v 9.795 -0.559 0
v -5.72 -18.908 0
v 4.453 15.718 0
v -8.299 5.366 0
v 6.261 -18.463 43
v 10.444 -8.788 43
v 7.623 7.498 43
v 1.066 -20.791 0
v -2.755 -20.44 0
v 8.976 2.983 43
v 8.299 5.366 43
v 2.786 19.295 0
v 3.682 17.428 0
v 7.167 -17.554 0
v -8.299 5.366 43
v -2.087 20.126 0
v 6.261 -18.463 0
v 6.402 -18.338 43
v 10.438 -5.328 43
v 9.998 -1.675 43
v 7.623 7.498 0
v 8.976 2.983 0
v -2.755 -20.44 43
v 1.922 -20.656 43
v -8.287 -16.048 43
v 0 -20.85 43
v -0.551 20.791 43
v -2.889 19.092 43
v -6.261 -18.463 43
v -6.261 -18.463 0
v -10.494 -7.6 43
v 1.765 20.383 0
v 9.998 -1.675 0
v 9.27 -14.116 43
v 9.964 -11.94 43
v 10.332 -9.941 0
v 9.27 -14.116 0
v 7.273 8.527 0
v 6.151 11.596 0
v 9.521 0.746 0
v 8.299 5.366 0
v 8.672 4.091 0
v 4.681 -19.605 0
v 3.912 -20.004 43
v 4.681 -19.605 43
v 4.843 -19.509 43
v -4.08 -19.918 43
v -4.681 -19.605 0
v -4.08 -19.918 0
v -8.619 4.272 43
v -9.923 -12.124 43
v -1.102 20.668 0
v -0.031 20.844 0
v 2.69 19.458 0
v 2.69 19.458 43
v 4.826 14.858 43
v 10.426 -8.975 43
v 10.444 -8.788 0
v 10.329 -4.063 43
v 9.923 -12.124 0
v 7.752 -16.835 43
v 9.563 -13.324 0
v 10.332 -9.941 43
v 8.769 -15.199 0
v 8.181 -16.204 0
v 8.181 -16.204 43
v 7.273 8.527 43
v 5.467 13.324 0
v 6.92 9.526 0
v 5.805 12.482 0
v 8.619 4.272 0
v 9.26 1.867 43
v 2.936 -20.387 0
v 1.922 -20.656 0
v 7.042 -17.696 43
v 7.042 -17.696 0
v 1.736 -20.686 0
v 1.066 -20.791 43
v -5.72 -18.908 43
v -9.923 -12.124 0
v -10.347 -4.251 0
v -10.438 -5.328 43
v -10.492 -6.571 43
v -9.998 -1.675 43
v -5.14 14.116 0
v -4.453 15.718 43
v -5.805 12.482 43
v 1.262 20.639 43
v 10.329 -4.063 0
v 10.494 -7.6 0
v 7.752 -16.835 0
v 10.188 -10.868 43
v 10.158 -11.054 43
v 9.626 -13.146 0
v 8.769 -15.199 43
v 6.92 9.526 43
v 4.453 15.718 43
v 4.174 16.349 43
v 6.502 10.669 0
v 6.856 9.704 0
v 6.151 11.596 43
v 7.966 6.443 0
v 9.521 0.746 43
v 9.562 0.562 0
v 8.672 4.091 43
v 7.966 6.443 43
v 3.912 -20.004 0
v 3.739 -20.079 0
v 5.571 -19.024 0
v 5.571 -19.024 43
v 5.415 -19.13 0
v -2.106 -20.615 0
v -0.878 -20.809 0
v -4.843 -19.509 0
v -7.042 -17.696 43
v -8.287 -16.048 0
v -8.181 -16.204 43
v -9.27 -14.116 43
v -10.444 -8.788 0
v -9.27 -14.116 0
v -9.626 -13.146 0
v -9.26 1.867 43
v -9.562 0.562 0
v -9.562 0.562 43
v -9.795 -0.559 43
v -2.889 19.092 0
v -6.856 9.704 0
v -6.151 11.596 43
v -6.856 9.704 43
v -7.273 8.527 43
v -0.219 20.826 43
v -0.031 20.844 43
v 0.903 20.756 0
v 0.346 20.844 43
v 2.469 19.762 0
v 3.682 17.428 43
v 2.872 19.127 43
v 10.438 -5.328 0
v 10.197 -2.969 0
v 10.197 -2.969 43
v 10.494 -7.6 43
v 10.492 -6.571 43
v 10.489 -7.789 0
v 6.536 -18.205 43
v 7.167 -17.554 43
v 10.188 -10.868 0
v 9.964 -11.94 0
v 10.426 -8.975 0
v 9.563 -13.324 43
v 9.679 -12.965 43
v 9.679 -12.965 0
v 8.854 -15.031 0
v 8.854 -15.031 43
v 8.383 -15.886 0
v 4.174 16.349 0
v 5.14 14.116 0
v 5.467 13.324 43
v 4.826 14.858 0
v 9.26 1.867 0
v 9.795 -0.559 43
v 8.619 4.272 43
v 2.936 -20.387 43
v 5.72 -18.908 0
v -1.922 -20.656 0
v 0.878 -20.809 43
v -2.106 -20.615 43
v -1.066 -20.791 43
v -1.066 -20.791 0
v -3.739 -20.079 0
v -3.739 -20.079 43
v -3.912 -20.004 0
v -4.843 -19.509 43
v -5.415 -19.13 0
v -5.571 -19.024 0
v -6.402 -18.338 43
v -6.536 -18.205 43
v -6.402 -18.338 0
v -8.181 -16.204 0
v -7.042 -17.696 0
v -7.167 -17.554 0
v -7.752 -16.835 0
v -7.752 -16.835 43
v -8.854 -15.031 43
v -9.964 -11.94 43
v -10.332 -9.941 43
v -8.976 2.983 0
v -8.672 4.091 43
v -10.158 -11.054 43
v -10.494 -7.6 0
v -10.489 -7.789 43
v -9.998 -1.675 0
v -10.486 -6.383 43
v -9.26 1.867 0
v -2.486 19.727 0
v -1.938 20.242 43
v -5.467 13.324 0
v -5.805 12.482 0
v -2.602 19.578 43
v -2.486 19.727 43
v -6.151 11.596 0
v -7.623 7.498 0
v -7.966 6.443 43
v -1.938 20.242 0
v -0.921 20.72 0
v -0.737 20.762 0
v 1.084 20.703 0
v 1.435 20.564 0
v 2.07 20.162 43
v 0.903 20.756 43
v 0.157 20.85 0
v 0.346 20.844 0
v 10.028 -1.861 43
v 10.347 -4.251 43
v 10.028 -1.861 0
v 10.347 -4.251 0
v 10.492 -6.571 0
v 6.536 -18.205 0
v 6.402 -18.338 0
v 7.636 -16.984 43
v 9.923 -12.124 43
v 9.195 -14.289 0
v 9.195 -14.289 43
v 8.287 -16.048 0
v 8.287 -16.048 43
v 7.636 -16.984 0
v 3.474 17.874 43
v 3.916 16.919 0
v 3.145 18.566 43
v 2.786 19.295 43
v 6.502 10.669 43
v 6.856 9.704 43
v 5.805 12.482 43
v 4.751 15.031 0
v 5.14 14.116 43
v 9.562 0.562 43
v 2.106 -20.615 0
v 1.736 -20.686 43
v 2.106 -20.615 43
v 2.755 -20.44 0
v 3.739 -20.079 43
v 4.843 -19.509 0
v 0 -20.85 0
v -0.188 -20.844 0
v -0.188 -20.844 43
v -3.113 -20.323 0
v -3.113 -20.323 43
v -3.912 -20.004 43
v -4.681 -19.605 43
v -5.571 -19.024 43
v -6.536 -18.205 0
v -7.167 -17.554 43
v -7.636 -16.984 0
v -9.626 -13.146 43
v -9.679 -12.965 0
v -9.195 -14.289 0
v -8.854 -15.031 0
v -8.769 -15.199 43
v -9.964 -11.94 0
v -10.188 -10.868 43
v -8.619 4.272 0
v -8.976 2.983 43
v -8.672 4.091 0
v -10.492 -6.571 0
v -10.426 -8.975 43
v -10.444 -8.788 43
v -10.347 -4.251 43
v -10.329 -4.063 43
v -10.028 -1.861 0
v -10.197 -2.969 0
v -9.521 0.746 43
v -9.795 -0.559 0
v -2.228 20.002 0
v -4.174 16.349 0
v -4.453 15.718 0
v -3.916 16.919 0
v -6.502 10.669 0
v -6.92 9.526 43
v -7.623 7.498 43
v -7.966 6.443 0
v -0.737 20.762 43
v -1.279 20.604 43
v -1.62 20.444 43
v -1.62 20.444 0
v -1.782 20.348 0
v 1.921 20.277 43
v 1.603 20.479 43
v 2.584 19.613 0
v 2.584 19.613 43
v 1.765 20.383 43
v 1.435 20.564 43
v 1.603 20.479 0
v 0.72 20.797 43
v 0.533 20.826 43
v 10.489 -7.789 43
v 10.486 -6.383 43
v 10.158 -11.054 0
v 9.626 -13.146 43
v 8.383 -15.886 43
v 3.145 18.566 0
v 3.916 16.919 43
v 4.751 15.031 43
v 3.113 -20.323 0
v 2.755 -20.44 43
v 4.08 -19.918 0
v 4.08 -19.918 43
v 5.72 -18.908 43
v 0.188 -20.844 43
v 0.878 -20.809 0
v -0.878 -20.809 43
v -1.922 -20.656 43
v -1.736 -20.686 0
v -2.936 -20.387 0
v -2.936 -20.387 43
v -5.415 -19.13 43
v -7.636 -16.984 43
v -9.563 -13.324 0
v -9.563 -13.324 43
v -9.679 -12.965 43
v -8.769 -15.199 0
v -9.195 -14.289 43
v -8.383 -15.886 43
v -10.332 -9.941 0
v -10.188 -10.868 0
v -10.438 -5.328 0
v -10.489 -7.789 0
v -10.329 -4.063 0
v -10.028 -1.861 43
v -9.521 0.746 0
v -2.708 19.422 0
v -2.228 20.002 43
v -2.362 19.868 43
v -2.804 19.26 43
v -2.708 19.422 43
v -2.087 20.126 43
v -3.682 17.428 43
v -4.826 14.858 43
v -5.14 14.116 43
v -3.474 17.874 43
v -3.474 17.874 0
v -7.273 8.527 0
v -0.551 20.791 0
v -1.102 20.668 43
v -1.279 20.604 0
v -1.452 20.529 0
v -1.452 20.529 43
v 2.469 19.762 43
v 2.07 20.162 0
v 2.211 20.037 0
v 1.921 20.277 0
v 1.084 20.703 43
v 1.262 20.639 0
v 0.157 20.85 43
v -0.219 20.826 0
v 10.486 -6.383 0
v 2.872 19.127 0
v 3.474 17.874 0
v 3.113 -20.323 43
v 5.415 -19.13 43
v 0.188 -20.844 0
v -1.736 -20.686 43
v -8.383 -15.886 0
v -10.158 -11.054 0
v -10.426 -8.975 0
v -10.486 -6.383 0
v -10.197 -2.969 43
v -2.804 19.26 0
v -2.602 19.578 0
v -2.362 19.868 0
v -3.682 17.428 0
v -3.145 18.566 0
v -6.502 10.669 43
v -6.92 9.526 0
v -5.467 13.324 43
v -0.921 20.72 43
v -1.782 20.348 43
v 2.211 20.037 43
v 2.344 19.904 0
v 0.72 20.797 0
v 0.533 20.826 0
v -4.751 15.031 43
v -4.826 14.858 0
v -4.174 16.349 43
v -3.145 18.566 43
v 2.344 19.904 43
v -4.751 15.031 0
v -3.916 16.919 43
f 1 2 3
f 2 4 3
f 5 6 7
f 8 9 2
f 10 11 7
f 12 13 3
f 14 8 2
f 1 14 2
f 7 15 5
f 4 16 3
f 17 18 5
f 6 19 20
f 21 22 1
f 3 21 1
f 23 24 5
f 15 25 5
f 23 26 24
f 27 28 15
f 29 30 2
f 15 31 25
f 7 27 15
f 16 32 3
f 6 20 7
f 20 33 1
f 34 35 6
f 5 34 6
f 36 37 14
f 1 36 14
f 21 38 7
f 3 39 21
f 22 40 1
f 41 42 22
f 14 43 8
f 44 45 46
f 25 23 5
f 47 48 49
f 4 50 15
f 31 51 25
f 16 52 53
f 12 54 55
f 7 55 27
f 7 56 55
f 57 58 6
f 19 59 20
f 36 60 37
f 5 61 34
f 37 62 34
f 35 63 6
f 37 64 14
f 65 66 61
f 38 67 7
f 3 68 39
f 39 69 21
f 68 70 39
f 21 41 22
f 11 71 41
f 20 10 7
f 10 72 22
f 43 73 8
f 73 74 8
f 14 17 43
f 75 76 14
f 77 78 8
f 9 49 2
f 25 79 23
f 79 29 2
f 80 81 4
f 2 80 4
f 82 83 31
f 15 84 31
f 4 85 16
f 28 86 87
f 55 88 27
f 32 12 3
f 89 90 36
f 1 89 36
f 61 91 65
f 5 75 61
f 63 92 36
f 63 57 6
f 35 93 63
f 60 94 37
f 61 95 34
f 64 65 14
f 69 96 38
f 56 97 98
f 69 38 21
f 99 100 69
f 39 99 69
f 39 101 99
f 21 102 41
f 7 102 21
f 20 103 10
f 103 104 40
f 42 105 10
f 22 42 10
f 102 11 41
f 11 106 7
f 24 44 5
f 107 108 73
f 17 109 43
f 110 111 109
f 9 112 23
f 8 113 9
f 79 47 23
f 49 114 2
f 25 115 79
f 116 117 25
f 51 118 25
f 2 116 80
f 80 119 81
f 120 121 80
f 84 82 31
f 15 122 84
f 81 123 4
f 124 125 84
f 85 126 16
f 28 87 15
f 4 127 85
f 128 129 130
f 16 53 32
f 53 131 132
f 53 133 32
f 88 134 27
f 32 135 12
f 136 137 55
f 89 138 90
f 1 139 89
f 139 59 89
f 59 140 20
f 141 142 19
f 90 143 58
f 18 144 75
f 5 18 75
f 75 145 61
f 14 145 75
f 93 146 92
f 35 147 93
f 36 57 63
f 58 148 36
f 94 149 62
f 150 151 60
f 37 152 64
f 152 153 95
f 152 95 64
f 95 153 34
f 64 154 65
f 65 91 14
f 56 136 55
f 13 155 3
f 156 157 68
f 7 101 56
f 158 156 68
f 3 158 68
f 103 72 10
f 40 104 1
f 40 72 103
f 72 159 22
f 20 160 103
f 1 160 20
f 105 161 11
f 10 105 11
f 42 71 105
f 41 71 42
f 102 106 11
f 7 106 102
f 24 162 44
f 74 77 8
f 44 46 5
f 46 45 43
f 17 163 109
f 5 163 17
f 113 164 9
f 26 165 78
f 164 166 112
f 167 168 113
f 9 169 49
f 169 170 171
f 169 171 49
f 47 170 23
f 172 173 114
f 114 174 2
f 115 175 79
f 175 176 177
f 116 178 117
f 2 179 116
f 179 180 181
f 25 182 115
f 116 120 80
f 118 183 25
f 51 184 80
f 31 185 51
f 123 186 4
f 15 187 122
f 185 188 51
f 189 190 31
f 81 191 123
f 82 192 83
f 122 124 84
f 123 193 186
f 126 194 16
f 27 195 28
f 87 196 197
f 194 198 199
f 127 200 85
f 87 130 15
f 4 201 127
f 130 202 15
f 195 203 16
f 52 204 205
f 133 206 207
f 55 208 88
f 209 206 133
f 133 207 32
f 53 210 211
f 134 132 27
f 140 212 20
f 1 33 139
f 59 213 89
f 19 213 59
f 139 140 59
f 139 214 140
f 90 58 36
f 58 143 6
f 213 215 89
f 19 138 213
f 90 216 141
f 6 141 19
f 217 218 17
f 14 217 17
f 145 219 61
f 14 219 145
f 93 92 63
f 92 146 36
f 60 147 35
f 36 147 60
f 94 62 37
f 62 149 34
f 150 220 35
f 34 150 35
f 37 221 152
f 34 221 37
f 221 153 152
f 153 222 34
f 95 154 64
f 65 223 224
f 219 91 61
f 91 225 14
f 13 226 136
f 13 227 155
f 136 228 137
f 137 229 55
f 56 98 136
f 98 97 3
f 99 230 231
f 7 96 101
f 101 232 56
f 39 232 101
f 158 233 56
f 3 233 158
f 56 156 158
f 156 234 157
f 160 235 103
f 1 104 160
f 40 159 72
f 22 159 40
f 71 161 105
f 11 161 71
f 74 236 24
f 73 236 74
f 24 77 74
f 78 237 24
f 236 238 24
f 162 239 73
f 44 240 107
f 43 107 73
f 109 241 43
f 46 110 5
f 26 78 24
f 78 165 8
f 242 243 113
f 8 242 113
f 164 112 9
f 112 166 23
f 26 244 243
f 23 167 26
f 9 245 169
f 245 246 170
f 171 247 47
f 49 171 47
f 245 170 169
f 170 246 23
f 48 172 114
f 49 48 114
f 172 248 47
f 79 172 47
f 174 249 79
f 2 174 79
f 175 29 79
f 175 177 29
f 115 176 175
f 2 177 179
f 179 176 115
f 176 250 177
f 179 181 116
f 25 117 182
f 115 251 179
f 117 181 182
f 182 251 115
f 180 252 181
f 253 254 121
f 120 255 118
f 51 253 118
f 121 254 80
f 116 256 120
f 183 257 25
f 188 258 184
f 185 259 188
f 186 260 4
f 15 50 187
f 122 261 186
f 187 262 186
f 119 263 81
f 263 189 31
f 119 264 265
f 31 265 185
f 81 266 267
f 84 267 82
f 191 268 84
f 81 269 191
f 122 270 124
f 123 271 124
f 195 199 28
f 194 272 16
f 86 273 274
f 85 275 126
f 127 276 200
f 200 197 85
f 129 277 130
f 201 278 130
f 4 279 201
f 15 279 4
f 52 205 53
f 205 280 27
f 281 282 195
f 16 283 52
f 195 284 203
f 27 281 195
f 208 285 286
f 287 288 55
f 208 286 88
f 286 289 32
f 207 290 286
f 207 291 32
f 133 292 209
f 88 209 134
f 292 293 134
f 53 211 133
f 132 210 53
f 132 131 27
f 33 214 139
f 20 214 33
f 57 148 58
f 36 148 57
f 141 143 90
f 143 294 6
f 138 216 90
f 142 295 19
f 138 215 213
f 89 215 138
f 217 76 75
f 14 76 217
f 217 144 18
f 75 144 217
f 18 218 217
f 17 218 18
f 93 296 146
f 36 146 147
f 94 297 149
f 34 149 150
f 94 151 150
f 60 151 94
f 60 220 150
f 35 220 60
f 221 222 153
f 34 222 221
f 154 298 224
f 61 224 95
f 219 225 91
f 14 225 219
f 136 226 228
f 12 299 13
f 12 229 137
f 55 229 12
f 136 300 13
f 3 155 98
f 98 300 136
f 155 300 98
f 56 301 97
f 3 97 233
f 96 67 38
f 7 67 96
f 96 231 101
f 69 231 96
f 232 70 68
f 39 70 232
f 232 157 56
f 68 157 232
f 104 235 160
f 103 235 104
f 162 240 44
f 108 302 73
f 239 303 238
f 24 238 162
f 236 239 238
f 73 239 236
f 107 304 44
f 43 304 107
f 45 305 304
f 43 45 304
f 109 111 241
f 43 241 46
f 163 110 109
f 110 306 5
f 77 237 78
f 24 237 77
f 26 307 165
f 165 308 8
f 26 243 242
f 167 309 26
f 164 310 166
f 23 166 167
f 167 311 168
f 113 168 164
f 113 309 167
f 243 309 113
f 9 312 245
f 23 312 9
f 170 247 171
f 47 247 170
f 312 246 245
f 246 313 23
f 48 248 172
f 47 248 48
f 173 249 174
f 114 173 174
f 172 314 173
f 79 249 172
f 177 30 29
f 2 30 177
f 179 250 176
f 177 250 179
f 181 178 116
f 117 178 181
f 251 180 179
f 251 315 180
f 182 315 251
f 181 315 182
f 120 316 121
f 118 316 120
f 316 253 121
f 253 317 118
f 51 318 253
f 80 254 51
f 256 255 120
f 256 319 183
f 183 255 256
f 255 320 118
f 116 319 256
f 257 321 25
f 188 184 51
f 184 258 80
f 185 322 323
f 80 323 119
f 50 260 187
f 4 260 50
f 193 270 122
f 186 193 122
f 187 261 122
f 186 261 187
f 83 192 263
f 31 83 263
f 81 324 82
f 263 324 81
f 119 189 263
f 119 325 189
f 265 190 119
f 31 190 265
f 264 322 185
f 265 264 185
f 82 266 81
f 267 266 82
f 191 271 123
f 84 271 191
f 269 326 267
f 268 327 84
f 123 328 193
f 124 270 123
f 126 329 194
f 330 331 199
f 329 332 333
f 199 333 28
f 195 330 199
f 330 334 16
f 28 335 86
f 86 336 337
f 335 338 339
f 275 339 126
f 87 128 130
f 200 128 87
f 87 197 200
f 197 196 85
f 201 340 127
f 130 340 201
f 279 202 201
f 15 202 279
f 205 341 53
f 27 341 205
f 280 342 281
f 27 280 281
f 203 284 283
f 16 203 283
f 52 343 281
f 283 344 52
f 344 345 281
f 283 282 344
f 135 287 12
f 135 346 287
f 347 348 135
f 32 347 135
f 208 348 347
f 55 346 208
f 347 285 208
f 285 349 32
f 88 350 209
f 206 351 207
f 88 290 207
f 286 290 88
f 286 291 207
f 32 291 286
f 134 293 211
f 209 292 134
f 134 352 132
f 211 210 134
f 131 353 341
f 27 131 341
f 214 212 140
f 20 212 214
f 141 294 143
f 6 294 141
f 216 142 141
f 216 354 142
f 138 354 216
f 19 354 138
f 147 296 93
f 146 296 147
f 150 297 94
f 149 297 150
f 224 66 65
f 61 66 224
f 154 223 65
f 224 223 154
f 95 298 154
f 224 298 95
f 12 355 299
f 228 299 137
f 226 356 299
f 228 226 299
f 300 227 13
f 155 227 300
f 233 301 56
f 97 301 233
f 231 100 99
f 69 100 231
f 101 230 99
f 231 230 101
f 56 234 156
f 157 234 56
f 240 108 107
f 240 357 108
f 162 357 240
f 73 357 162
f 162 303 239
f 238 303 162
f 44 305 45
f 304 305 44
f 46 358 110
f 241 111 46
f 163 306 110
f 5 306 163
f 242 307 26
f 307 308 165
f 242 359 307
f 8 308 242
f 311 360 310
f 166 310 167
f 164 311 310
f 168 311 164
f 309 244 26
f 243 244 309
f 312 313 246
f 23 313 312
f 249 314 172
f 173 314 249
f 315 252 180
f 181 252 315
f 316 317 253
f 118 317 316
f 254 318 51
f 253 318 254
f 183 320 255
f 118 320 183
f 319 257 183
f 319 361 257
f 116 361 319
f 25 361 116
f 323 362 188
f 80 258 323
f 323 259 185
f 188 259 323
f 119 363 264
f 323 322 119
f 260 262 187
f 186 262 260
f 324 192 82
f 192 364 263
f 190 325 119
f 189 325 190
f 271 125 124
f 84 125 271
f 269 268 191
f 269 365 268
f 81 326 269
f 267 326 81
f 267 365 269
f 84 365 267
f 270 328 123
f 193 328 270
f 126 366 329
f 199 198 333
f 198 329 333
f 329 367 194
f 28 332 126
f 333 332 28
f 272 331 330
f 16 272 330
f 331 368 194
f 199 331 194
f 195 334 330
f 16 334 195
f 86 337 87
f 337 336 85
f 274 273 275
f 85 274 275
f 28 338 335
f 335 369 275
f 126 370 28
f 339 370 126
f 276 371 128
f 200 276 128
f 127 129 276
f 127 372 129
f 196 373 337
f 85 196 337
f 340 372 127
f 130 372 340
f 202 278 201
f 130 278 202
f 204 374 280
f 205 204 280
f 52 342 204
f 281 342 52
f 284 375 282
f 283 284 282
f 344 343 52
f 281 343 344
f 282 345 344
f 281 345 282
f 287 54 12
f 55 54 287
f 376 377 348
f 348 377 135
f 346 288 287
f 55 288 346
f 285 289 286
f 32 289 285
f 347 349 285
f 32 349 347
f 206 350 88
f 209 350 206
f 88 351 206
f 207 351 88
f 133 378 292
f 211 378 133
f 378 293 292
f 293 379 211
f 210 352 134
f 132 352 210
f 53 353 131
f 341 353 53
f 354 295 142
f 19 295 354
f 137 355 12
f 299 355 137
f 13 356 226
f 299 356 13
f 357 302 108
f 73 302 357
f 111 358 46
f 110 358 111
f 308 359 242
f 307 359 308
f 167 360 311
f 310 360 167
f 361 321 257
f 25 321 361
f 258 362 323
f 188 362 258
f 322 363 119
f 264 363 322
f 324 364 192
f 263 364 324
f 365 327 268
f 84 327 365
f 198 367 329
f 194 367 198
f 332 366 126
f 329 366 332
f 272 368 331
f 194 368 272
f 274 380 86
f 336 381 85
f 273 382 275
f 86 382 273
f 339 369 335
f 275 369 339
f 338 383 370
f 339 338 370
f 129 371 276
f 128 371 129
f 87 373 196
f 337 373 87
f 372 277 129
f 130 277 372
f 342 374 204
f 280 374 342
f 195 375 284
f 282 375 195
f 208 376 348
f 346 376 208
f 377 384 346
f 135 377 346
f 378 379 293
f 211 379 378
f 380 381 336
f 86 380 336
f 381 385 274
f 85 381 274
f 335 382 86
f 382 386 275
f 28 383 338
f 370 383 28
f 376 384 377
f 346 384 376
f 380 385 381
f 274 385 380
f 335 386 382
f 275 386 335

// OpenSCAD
// file: Naca4.scad
// Naca4.scad - library for parametric airfoils of 4 digit NACA series
// Code: Rudolf Huttary, Berlin 
// June 2015
// commercial use prohibited


// general use: for more examples refer to sampler.scad
// naca = naca digits or 3el vector  (default = 12 or [0, 0, .12])
// L    = chord length [mm]      (default= 100)
// N    = # sample points        (default= 81)
// h    = height [mm]            (default= 1)
// open = close at the thin end? (default = true)
// two equivalent example calls
 airfoil(naca = 2408, L = 60, N=1001, h = 30, open = false); 
// airfoil(naca = [.01, .20, .12], L = 100, N=81, h = 1, open = true); 

module help()
{
  echo(str("\n\nList of signatures in lib:\n=================\n", 
  "module airfoil(naca=2412, L = 100, N = 81, h = 1, open = false) - renders airfoil object\n", 
  "module airfoil(naca=[.2, .4, .12], L = 100, N = 81, h = 1, open = false) - renders airfoil object using percentage for camber,  camber distance and thicknes\n", 
  "function airfoil_data(naca=12, L = 100, N = 81, open = false)\n",
  "=================\n")); 
}

help(); 
// this is the object
module airfoil(naca=12, L = 100, N = 81, h = 1, open = false)
{
  linear_extrude(height = h)
  polygon(points = airfoil_data(naca, L, N, open)); 
}

// this is the main function providing the airfoil data
function airfoil_data(naca=12, L = 100, N = 81, open = false) = 
  let(Na = len(naca)!=3?NACA(naca):naca)
  let(A = [.2969, -0.126, -.3516, .2843, open?-0.1015:-0.1036])
  [for (b=[-180:360/(N):179.99]) 
    let (x = (1-cos(b))/2)  
    let(yt = sign(b)*Na[2]/.2*(A*[sqrt(x), x, x*x, x*x*x, x*x*x*x])) 
    Na[0]==0?L*[x, yt]:L*camber(x, yt, Na[0], Na[1], sign(b))];  

// helper functions
function NACA(naca) = 
  let (M = floor(naca/1000))
  let (P = floor((naca-M*1000)/100)) 
  [M/100, P/10, floor(naca-M*1000-P*100)/100];  

function camber(x, y, M, P, upper) = 
  let(yc = (x<P)?M/P/P*(2*P*x-x*x): M/(1-P)/(1-P)*(1 - 2*P + 2*P*x -x*x))
  let(dy = (x<P)?2*M/P/P*(P-x):2*M/(1-P)/(1-P)*(P-x))
  let(th = atan(dy))
  [upper ? x - y*sin(th):x + y*sin(th), upper ? yc + y*cos(th):yc - y*cos(th)];
// main file
use <Naca4.scad>

$fn=100;

module spacer(height) {
    len=41.4+0.3;

    *cube([20.4, len, height], center=true);

    minkowski()
    {
        rotate([0, 0, 90])
            translate([-len/2+3, 0, 0])
            airfoil(naca=[.0, .25, .42], L=35.7, N=100, h=height / 2, open=true);

        cylinder(h=height / 2, d=6);
    }

}

spacer(43);
